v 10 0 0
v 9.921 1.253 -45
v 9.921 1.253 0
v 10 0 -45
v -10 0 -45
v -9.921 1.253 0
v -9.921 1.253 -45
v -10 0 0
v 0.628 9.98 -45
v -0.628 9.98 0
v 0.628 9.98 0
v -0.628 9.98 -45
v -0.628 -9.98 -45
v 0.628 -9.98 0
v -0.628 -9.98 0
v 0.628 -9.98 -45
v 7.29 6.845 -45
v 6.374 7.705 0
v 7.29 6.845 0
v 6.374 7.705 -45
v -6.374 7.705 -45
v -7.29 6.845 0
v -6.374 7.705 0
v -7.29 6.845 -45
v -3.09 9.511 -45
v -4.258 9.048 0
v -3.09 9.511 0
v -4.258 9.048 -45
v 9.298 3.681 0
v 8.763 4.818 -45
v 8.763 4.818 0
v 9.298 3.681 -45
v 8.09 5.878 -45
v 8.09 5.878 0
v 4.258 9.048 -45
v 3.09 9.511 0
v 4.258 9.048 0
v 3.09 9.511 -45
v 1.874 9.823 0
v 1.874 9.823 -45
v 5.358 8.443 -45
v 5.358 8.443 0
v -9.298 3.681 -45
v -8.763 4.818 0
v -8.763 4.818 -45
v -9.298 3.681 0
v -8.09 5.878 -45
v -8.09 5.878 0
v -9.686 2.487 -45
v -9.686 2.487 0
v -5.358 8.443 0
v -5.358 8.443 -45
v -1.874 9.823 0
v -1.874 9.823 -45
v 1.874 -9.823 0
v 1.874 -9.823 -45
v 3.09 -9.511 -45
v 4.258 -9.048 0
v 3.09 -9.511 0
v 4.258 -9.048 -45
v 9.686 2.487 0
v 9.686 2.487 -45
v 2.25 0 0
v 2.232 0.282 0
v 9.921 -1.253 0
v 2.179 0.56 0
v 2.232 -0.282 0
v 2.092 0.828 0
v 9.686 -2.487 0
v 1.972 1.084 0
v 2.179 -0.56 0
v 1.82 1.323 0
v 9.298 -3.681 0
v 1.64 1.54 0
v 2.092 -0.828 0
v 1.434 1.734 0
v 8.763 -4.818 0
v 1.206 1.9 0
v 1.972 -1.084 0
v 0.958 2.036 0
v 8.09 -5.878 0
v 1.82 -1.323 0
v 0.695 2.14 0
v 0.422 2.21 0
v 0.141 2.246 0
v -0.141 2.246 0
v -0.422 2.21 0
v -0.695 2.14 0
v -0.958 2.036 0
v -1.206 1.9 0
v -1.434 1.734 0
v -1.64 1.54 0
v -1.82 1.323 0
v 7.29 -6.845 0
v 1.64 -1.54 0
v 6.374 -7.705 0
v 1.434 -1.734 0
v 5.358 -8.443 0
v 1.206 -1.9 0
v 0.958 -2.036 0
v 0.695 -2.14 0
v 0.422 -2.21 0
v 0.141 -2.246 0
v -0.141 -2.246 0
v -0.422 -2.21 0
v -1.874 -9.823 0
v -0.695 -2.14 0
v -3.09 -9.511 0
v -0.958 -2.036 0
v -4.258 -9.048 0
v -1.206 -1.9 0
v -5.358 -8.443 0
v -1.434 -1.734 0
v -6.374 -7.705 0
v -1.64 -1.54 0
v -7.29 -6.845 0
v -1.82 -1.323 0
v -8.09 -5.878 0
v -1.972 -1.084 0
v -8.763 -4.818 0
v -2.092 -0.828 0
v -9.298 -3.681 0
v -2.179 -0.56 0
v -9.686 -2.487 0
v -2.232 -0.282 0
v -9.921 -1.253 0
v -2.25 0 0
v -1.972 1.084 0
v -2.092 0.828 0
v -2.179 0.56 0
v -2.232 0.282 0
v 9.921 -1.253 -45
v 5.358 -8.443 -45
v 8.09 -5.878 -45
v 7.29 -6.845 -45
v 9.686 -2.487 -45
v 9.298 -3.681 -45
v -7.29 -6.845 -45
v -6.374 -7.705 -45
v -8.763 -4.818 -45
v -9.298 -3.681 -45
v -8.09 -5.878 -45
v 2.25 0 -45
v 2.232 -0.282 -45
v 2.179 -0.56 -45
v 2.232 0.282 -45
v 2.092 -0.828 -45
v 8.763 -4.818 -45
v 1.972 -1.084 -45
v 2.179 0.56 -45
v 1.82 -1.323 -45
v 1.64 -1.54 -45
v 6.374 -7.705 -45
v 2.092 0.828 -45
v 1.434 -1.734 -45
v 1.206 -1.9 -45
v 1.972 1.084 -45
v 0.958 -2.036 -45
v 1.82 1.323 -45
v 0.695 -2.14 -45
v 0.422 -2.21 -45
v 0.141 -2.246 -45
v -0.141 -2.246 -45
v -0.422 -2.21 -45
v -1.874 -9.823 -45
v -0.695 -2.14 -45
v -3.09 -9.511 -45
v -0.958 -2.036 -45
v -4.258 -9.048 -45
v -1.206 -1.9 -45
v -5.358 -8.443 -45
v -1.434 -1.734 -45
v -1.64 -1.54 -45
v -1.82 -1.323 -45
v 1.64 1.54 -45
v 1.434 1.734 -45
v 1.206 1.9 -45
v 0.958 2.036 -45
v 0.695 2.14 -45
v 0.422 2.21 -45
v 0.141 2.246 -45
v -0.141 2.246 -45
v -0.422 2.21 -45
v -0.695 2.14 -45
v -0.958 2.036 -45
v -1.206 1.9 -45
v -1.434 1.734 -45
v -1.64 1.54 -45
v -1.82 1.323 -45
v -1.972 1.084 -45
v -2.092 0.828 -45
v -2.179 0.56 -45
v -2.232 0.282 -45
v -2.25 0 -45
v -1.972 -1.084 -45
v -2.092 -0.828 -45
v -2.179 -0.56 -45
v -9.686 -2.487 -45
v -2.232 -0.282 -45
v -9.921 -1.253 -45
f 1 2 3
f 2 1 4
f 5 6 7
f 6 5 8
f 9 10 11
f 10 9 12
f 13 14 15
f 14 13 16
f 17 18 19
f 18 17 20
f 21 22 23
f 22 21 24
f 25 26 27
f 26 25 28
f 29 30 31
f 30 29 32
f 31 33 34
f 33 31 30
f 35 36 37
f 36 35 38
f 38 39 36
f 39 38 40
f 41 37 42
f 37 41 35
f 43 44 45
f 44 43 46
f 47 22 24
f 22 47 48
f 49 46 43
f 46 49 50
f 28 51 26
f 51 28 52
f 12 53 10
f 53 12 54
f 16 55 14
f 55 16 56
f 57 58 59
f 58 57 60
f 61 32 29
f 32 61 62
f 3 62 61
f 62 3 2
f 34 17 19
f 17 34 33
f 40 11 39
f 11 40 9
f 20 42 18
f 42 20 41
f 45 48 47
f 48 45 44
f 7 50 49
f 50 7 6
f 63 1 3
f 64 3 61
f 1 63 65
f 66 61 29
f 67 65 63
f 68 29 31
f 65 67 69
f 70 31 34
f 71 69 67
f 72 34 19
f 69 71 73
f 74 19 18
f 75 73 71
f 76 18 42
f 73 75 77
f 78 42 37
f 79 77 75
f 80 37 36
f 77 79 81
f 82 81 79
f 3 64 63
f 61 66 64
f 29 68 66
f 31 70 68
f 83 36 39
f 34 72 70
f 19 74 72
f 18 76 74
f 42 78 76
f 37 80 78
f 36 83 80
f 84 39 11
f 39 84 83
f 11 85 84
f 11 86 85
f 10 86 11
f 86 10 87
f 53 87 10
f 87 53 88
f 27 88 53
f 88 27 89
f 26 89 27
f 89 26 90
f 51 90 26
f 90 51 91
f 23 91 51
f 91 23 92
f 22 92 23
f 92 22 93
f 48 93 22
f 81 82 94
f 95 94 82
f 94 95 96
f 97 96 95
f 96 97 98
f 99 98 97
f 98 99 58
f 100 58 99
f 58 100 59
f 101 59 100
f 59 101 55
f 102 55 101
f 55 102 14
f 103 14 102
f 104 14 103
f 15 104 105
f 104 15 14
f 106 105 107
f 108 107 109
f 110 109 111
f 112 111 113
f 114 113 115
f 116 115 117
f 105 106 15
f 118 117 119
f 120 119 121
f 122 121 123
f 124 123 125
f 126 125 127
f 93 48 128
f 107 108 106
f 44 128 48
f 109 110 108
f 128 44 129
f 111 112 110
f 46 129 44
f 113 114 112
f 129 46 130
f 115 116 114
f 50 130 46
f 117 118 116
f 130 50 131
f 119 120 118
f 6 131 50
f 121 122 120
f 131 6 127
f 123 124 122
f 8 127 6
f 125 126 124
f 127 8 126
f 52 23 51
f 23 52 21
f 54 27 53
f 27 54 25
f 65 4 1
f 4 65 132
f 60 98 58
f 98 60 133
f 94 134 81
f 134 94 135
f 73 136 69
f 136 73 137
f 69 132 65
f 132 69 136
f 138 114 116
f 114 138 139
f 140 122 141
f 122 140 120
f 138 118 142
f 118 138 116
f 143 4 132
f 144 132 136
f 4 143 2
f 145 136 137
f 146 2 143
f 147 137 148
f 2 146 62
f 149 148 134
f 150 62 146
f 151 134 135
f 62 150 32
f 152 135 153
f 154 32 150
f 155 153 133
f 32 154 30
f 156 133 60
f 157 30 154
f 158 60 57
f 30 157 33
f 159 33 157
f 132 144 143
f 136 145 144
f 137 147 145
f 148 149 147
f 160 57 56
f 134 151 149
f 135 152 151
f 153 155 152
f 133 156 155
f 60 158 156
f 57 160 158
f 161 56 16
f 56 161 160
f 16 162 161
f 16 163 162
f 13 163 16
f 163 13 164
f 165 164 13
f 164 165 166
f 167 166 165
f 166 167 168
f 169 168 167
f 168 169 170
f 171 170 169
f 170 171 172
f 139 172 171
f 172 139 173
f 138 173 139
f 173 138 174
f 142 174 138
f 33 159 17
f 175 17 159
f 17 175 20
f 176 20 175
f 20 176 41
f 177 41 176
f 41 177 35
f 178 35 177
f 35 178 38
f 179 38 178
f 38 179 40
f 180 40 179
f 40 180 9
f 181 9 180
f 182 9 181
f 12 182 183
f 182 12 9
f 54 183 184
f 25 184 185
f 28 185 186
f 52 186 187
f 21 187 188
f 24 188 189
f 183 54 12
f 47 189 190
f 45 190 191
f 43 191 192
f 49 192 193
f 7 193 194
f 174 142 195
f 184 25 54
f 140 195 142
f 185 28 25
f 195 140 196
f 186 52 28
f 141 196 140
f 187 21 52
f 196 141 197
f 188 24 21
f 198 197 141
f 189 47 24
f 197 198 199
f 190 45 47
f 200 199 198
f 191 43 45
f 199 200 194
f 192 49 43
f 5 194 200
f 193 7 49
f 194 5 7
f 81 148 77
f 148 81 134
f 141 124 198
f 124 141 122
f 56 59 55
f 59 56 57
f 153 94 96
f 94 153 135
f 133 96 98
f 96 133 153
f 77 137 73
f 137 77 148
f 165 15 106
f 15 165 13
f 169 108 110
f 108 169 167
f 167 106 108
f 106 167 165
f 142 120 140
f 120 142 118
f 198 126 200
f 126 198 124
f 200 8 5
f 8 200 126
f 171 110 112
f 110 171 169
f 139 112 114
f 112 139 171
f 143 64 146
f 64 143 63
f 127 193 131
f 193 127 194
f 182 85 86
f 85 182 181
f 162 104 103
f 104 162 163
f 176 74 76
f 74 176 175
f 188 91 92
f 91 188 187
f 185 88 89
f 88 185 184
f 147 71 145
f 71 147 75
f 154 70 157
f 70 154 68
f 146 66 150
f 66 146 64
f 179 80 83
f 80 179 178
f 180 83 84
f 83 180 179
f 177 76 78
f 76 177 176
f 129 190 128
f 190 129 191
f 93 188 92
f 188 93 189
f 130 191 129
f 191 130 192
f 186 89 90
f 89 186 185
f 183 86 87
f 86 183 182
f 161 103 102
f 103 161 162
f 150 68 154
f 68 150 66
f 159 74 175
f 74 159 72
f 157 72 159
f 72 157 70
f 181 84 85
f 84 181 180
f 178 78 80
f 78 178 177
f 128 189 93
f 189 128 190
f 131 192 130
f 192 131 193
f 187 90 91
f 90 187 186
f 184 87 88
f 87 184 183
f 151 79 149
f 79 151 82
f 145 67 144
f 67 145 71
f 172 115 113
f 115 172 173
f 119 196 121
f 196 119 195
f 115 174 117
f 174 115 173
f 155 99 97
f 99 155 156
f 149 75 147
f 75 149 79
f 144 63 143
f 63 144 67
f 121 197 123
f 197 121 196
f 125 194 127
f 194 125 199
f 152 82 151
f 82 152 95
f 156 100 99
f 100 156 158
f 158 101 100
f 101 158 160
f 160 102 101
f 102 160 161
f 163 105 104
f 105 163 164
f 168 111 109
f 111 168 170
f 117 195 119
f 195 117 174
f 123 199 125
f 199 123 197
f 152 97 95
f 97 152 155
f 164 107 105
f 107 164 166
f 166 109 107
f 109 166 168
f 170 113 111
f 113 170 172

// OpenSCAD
$fn = 50;


difference() {
	union() {
		translate(v = [0, 0, -45.0000000000]) {
			cylinder(h = 45, r = 10.0000000000);
		}
		cylinder(h = 0, r = 16.0000000000);
	}
	union() {
		#translate(v = [0, 0, -45]) {
			cylinder(h = 45, r = 2.2500000000);
		}
	}
}
